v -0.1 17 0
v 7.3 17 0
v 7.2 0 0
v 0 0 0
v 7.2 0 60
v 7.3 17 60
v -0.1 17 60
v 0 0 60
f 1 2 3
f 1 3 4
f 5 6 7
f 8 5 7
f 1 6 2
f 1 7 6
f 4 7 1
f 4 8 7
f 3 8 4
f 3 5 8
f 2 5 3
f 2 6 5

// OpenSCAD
// A polygon extruded as a piece to repair a strut
linear_extrude(60) polygon(points=[[0,0],[7.2,0],[7.3,17],[-.1,17]]);
